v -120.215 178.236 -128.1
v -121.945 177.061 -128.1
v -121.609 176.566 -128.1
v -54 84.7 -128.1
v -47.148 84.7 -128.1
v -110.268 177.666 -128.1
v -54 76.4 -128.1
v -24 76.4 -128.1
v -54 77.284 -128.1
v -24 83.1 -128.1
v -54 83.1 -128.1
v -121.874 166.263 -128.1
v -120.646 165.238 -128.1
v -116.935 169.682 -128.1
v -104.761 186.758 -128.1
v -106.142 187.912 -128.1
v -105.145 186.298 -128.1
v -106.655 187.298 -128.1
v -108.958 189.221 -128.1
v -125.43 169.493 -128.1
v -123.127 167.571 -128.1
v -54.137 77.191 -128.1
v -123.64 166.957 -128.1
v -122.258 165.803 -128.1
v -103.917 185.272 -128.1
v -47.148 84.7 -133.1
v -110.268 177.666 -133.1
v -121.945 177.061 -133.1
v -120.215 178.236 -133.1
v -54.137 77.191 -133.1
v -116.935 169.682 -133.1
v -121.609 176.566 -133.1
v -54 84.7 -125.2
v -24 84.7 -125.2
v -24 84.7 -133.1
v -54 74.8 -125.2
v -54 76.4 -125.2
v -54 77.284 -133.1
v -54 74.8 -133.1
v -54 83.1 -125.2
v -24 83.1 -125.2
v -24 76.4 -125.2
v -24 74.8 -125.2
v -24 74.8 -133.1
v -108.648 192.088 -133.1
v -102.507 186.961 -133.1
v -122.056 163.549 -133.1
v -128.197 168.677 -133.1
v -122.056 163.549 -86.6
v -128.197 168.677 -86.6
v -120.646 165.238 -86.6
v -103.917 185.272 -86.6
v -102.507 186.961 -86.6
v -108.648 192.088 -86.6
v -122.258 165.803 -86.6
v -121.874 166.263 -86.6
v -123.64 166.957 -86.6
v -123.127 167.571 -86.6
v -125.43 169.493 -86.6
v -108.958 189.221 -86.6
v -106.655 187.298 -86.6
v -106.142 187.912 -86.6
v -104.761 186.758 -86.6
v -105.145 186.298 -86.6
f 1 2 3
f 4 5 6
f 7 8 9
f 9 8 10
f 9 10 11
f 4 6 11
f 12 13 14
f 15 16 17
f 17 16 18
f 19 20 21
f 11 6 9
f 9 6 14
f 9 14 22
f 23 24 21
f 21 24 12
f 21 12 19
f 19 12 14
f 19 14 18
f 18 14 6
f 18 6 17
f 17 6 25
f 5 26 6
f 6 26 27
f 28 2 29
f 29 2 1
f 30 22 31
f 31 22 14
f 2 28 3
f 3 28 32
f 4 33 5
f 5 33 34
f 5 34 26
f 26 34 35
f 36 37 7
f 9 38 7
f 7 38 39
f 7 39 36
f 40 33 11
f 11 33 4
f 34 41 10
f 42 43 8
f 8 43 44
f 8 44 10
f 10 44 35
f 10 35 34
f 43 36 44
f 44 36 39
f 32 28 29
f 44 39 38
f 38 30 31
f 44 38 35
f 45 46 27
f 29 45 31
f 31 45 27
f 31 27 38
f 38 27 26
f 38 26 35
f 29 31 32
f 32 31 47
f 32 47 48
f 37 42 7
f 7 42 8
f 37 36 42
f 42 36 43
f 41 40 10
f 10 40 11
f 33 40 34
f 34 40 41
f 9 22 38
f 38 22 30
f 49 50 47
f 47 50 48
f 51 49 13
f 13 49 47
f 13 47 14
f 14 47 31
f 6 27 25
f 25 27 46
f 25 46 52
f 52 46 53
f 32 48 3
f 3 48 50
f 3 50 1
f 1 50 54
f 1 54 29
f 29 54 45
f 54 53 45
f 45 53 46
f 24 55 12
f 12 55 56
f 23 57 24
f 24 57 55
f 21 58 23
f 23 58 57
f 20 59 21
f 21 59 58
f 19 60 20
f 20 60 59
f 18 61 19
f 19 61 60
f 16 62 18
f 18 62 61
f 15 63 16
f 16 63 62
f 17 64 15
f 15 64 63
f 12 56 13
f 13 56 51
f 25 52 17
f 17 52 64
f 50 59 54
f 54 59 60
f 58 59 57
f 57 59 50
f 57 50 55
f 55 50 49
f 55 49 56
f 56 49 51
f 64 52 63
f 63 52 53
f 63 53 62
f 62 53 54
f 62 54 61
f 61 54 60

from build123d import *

# Parameters (mm, degrees)
CROQUIS_PLACA_CLIP_W = 30
CROQUIS_PLACA_CLIP_H = 9.9
PLACA_CLIP_DEPTH     = 5
CROQUIS_MORDAZAS_W   = 30
CROQUIS_MORDAZAS_H   = 1.6
MORDAZAS_DEPTH       = 2.9
BRAZO_DEPTH          = 5
TOPE_CUNA_DEPTH      = 5
CUNA_DEPTH           = 46.5


with BuildPart() as part:
    # Croquis_placa_clip → Placa_clip (new body)
    with BuildSketch(Plane.XY.offset(-133.1)):
        with Locations((-39, 79.75)):
            Rectangle(CROQUIS_PLACA_CLIP_W, CROQUIS_PLACA_CLIP_H)
    extrude(amount=PLACA_CLIP_DEPTH)

    # Croquis_mordazas → Mordazas (add)
    with BuildSketch(Plane.XY.offset(-128.1)):
        with Locations((-39, 83.9)):
            Rectangle(CROQUIS_MORDAZAS_W, CROQUIS_MORDAZAS_H)
        with Locations((-39, 75.6)):
            Rectangle(CROQUIS_MORDAZAS_W, CROQUIS_MORDAZAS_H)
    extrude(amount=MORDAZAS_DEPTH)

    # Croquis_brazo → Brazo (add)
    with BuildSketch(Plane.XY.offset(-133.1)):
        Polygon((-54.136621543, 77.191377169), (-121.944749796, 177.06116426), (-113.671506709, 182.678409922), (-45.863378457, 82.808622831), align=None)
    extrude(amount=BRAZO_DEPTH)

    # Croquis_tope → Tope_cuna (add)
    with BuildSketch(Plane.XY.offset(-133.1)):
        Polygon((-128.196522897, 168.676764411), (-108.647880385, 192.088312329), (-102.507146505, 186.960799539), (-122.055789016, 163.549251621), align=None)
    extrude(amount=TOPE_CUNA_DEPTH)

    # Croquis_cuna → Cuna (add)
    with BuildSketch(Plane.XY.offset(-133.1)):
        Polygon((-108.647880385, 192.088312329), (-102.507146505, 186.960799539), (-103.917212522, 185.272097722), (-105.145359298, 186.29760028), (-104.760795839, 186.758155321), (-106.142460962, 187.911845699), (-106.655212241, 187.297772311), (-108.957987446, 189.220589607), (-125.430122284, 169.493482017), (-123.127347079, 167.570664721), (-123.640098358, 166.956591333), (-122.258433235, 165.802900955), (-121.873869775, 166.263455996), (-120.645722999, 165.237953438), (-122.055789016, 163.549251621), (-128.196522897, 168.676764411), align=None)
    extrude(amount=CUNA_DEPTH)


solid = part.part
